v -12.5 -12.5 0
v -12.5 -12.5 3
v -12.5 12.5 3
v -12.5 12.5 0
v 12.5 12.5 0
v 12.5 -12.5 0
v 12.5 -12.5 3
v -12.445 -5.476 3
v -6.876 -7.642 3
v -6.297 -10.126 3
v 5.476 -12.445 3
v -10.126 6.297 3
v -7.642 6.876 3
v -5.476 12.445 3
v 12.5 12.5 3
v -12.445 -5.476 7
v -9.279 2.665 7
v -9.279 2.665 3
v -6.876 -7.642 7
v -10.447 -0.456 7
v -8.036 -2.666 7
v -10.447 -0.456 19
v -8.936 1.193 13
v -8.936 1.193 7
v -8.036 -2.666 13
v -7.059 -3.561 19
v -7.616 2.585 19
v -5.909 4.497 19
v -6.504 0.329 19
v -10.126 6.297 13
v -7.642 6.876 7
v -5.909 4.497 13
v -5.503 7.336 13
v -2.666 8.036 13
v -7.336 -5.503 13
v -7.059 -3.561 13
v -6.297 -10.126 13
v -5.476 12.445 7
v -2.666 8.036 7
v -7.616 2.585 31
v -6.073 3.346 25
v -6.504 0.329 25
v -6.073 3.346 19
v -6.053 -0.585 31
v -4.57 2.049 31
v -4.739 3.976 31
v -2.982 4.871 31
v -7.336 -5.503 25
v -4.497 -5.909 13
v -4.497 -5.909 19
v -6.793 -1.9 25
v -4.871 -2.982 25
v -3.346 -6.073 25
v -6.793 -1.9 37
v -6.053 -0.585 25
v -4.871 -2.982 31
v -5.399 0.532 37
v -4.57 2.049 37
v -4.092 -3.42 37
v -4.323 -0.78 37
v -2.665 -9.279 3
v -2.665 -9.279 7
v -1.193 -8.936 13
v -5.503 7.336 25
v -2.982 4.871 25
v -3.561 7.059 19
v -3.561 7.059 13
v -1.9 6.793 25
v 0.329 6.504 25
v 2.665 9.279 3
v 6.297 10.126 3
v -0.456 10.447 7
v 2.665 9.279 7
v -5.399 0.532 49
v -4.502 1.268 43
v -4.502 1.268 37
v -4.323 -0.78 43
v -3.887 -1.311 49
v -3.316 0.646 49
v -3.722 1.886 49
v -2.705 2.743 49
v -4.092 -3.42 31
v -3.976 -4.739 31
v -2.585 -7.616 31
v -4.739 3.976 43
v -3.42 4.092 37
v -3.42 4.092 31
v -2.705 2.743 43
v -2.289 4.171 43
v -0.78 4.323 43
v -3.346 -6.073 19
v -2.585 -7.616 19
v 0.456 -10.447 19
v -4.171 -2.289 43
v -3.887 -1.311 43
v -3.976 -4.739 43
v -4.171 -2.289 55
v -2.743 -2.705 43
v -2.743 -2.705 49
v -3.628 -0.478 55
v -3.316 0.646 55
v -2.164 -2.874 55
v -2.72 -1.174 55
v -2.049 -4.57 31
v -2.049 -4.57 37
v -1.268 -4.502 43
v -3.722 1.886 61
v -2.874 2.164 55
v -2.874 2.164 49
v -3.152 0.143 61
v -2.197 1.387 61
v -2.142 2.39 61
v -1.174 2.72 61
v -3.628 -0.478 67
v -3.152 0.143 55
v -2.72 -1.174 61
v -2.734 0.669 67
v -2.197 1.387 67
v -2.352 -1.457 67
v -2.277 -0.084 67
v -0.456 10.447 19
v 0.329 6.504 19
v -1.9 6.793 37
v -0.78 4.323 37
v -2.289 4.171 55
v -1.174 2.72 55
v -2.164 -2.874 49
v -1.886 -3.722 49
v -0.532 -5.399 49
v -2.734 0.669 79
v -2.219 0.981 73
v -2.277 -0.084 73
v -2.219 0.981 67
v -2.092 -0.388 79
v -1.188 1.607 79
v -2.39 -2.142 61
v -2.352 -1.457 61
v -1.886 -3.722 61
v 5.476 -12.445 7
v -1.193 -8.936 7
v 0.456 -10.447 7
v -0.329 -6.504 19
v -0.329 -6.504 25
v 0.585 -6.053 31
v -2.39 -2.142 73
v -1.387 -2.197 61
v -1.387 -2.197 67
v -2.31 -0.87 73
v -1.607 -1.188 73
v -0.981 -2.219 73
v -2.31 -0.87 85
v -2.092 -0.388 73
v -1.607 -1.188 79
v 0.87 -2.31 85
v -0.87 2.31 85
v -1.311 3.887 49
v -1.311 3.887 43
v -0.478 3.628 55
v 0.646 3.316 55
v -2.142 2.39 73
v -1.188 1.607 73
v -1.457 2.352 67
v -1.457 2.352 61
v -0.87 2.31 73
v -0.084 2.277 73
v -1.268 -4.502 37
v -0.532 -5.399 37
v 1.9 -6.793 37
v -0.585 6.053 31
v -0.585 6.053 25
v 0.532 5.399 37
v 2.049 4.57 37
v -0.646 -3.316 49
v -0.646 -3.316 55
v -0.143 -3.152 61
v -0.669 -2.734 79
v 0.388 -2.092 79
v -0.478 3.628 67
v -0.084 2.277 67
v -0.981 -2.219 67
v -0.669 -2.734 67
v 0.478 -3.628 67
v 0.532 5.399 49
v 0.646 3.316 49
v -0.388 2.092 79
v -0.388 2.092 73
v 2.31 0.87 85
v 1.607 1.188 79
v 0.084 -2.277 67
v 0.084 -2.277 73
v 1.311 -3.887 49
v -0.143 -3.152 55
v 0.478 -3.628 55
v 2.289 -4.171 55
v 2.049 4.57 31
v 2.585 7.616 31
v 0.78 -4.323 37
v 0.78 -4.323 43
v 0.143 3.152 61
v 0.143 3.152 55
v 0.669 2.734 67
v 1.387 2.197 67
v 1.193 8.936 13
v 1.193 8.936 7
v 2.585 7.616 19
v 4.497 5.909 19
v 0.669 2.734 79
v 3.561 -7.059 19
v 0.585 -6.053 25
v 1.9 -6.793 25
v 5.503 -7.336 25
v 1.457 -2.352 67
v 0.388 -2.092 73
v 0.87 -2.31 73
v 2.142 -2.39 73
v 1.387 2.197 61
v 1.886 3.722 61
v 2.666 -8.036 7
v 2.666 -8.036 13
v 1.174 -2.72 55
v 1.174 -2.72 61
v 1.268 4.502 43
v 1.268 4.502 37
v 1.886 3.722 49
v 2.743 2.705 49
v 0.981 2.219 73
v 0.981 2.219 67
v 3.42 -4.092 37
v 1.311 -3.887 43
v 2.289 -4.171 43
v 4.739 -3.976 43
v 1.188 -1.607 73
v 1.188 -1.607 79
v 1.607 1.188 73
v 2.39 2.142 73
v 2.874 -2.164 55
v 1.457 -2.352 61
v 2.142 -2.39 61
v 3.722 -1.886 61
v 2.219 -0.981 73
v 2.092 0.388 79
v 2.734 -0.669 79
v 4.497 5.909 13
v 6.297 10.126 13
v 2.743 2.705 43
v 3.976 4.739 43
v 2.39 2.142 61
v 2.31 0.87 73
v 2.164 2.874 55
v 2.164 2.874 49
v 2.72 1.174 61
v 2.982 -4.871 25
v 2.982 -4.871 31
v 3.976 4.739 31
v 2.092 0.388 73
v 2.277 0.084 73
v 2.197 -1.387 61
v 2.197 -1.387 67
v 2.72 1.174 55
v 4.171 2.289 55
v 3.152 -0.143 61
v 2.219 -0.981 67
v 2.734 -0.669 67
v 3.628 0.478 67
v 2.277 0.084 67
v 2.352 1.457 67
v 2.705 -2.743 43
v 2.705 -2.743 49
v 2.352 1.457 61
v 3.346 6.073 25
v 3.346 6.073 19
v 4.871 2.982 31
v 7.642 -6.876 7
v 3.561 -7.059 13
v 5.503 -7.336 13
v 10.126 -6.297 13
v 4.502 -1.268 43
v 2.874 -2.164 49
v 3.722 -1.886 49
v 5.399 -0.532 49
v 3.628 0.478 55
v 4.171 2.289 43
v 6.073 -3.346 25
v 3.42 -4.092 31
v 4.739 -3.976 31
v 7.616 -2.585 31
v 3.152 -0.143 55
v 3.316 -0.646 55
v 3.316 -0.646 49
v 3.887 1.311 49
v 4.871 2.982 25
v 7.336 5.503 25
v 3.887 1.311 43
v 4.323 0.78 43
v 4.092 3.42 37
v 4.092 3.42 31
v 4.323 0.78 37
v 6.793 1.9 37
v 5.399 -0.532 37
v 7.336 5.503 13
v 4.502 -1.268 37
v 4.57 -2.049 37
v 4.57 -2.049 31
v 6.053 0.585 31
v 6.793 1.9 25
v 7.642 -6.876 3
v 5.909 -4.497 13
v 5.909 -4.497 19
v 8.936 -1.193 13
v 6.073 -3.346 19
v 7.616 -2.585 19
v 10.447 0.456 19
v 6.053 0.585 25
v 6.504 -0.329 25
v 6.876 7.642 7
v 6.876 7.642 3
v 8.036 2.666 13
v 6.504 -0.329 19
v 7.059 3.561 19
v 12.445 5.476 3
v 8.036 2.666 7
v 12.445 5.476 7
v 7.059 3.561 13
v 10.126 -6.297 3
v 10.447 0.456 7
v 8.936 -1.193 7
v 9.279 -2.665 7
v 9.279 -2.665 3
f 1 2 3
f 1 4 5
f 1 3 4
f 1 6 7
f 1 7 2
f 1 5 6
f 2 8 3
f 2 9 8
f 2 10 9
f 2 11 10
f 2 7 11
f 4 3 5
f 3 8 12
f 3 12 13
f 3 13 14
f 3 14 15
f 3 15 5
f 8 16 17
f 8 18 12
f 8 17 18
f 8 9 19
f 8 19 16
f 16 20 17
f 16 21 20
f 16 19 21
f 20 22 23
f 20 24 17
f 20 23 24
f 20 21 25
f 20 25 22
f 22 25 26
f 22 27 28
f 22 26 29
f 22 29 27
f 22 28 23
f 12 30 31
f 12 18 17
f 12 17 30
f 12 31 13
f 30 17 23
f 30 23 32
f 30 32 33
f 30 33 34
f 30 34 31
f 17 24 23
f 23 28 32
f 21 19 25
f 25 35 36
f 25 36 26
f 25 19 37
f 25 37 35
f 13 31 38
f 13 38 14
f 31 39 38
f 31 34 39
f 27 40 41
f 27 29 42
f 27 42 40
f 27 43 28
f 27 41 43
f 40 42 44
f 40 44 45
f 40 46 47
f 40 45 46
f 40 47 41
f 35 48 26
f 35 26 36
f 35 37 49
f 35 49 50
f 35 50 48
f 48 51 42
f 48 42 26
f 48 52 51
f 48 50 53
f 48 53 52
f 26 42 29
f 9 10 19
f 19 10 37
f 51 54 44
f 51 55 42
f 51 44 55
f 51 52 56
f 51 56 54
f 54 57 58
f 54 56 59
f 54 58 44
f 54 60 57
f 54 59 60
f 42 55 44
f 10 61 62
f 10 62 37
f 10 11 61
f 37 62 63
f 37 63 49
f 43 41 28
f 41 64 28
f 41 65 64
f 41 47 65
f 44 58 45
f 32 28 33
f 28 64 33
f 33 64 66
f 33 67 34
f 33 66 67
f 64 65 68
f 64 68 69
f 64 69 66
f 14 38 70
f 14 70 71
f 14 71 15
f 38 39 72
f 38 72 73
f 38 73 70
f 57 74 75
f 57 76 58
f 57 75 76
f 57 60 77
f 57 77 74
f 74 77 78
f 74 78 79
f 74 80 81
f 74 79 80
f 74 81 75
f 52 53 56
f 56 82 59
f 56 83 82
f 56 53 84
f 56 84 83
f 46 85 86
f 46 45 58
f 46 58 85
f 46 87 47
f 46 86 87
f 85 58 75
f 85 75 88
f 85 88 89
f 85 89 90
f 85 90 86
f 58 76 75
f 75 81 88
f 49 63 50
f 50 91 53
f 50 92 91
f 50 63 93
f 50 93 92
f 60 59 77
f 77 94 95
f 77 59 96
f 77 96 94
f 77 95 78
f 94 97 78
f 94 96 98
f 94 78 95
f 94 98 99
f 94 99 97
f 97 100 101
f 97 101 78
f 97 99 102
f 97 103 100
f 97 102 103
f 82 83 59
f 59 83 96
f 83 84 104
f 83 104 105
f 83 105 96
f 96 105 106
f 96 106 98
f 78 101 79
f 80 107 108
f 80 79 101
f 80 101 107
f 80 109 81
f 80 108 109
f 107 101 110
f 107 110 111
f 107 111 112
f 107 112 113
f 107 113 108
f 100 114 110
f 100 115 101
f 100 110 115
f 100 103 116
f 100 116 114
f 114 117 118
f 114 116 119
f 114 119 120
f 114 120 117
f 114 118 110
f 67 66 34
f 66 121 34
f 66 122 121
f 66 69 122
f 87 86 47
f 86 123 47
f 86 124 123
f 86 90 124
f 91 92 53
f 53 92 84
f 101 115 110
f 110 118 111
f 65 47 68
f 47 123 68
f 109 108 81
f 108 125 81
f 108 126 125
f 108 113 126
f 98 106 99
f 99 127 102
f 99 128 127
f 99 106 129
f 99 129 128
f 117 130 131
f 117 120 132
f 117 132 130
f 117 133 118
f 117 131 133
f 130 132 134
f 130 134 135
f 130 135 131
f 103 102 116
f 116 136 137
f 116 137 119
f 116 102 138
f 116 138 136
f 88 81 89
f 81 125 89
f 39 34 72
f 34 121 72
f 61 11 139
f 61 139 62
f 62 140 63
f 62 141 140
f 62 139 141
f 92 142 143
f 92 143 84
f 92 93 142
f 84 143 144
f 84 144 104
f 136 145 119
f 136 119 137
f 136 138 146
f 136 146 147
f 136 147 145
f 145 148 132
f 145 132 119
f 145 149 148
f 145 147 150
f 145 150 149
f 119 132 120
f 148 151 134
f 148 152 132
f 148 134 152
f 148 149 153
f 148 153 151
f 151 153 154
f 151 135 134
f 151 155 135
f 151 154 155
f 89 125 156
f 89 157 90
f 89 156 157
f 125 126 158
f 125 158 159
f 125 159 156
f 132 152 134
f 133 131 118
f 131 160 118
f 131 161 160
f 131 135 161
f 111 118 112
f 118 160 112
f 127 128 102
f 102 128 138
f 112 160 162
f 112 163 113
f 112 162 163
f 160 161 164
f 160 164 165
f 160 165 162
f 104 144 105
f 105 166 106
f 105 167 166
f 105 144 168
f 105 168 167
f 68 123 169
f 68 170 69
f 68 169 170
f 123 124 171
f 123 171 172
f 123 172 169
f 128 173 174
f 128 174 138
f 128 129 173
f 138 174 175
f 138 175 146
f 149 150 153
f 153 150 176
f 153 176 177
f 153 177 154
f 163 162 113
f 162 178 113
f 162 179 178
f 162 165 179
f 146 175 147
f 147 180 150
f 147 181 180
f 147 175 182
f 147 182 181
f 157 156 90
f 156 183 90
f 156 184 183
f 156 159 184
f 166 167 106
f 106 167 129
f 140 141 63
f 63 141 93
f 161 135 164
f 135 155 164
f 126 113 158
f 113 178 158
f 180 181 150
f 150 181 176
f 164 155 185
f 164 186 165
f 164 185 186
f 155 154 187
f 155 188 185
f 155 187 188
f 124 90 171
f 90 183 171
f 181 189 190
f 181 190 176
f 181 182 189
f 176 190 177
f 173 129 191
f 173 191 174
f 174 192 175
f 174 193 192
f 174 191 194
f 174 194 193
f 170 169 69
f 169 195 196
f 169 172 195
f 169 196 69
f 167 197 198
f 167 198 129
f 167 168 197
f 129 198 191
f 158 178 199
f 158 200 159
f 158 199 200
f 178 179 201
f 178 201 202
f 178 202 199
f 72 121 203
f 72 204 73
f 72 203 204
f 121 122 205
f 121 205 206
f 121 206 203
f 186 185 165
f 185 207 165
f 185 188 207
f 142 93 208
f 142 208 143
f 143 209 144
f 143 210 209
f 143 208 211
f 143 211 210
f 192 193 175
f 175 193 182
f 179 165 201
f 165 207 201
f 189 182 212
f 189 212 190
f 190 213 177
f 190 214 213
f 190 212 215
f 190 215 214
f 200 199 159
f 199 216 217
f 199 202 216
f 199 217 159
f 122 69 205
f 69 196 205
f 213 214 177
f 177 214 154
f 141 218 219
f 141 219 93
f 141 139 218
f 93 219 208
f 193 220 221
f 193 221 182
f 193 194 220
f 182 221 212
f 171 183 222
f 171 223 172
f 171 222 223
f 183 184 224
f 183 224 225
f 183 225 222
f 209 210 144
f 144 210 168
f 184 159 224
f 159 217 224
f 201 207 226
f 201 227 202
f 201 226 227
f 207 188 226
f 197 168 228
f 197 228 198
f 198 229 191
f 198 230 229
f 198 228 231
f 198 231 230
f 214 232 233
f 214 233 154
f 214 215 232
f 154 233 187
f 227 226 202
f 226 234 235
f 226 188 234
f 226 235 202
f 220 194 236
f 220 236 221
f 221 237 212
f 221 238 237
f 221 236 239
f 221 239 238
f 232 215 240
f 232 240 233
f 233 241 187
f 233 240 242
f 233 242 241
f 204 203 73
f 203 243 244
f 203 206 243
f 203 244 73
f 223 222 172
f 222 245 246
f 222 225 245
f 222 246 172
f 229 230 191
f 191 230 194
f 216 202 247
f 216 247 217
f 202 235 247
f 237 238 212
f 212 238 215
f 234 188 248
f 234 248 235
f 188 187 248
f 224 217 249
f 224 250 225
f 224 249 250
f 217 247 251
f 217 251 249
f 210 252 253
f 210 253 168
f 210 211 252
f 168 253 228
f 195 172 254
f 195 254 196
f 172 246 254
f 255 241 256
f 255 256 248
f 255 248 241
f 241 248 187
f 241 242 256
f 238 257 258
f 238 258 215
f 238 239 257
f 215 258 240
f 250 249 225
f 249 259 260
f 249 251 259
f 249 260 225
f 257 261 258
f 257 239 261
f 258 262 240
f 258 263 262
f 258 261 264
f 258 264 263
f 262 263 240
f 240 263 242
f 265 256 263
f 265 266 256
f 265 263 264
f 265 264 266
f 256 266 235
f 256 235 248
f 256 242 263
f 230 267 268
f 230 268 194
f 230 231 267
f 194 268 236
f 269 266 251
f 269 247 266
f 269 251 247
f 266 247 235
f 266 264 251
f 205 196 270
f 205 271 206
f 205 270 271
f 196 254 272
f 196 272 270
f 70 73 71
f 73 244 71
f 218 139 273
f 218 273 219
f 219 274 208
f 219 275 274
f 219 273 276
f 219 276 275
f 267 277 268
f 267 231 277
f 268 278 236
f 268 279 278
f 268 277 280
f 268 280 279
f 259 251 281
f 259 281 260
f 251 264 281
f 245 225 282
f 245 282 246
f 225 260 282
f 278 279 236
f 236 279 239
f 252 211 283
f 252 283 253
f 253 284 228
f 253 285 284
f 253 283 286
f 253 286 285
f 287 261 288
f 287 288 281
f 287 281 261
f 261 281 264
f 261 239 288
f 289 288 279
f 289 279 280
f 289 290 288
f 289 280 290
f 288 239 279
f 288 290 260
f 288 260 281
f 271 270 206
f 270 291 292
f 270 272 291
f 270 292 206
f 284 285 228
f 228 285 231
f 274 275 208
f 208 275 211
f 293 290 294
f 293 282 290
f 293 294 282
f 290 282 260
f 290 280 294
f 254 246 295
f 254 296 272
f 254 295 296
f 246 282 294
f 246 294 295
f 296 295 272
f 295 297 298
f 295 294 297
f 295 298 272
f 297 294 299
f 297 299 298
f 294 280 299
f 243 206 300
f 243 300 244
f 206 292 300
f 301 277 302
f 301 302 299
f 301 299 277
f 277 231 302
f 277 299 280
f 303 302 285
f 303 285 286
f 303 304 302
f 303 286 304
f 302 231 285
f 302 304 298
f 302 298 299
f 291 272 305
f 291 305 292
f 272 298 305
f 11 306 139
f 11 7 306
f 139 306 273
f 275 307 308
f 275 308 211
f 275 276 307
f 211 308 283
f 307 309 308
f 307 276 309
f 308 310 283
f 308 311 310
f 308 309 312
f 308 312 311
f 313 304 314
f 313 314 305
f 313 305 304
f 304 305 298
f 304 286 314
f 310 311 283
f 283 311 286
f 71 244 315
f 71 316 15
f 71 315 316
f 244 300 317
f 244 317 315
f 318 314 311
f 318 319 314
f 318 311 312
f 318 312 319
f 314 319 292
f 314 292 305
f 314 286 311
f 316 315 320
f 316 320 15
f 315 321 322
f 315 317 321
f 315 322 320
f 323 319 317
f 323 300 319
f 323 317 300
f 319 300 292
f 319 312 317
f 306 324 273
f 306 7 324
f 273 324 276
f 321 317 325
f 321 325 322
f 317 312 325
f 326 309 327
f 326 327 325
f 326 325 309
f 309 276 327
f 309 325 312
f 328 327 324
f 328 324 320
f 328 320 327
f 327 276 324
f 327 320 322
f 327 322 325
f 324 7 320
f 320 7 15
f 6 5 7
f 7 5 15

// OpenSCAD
/* scADVENT 2021 - Tower  by Ulrich Bär  license:CC0 
 https://creativecommons.org/publicdomain/zero/1.0/
 
 
 Today we have a Tower, not much code needed for this
 */

/*[Tower]*/
max=15;
s=25;
h=3;


Tower(s,max,h);

// recursively one cube on the other, each a little smaller 

module Tower(s=25,max=25,h=3,count=0){
  if(count<max)translate([0,0,1])rotate(137.5/4)Tower(count=count+1,max=max,s=s*0.877,h=count*5);
  color(count/max*[1.0,0.5,0.7]+[0.0, 0.5, 0.3])translate([-s/2,-s/2])cube([s,s,h],false);
}
